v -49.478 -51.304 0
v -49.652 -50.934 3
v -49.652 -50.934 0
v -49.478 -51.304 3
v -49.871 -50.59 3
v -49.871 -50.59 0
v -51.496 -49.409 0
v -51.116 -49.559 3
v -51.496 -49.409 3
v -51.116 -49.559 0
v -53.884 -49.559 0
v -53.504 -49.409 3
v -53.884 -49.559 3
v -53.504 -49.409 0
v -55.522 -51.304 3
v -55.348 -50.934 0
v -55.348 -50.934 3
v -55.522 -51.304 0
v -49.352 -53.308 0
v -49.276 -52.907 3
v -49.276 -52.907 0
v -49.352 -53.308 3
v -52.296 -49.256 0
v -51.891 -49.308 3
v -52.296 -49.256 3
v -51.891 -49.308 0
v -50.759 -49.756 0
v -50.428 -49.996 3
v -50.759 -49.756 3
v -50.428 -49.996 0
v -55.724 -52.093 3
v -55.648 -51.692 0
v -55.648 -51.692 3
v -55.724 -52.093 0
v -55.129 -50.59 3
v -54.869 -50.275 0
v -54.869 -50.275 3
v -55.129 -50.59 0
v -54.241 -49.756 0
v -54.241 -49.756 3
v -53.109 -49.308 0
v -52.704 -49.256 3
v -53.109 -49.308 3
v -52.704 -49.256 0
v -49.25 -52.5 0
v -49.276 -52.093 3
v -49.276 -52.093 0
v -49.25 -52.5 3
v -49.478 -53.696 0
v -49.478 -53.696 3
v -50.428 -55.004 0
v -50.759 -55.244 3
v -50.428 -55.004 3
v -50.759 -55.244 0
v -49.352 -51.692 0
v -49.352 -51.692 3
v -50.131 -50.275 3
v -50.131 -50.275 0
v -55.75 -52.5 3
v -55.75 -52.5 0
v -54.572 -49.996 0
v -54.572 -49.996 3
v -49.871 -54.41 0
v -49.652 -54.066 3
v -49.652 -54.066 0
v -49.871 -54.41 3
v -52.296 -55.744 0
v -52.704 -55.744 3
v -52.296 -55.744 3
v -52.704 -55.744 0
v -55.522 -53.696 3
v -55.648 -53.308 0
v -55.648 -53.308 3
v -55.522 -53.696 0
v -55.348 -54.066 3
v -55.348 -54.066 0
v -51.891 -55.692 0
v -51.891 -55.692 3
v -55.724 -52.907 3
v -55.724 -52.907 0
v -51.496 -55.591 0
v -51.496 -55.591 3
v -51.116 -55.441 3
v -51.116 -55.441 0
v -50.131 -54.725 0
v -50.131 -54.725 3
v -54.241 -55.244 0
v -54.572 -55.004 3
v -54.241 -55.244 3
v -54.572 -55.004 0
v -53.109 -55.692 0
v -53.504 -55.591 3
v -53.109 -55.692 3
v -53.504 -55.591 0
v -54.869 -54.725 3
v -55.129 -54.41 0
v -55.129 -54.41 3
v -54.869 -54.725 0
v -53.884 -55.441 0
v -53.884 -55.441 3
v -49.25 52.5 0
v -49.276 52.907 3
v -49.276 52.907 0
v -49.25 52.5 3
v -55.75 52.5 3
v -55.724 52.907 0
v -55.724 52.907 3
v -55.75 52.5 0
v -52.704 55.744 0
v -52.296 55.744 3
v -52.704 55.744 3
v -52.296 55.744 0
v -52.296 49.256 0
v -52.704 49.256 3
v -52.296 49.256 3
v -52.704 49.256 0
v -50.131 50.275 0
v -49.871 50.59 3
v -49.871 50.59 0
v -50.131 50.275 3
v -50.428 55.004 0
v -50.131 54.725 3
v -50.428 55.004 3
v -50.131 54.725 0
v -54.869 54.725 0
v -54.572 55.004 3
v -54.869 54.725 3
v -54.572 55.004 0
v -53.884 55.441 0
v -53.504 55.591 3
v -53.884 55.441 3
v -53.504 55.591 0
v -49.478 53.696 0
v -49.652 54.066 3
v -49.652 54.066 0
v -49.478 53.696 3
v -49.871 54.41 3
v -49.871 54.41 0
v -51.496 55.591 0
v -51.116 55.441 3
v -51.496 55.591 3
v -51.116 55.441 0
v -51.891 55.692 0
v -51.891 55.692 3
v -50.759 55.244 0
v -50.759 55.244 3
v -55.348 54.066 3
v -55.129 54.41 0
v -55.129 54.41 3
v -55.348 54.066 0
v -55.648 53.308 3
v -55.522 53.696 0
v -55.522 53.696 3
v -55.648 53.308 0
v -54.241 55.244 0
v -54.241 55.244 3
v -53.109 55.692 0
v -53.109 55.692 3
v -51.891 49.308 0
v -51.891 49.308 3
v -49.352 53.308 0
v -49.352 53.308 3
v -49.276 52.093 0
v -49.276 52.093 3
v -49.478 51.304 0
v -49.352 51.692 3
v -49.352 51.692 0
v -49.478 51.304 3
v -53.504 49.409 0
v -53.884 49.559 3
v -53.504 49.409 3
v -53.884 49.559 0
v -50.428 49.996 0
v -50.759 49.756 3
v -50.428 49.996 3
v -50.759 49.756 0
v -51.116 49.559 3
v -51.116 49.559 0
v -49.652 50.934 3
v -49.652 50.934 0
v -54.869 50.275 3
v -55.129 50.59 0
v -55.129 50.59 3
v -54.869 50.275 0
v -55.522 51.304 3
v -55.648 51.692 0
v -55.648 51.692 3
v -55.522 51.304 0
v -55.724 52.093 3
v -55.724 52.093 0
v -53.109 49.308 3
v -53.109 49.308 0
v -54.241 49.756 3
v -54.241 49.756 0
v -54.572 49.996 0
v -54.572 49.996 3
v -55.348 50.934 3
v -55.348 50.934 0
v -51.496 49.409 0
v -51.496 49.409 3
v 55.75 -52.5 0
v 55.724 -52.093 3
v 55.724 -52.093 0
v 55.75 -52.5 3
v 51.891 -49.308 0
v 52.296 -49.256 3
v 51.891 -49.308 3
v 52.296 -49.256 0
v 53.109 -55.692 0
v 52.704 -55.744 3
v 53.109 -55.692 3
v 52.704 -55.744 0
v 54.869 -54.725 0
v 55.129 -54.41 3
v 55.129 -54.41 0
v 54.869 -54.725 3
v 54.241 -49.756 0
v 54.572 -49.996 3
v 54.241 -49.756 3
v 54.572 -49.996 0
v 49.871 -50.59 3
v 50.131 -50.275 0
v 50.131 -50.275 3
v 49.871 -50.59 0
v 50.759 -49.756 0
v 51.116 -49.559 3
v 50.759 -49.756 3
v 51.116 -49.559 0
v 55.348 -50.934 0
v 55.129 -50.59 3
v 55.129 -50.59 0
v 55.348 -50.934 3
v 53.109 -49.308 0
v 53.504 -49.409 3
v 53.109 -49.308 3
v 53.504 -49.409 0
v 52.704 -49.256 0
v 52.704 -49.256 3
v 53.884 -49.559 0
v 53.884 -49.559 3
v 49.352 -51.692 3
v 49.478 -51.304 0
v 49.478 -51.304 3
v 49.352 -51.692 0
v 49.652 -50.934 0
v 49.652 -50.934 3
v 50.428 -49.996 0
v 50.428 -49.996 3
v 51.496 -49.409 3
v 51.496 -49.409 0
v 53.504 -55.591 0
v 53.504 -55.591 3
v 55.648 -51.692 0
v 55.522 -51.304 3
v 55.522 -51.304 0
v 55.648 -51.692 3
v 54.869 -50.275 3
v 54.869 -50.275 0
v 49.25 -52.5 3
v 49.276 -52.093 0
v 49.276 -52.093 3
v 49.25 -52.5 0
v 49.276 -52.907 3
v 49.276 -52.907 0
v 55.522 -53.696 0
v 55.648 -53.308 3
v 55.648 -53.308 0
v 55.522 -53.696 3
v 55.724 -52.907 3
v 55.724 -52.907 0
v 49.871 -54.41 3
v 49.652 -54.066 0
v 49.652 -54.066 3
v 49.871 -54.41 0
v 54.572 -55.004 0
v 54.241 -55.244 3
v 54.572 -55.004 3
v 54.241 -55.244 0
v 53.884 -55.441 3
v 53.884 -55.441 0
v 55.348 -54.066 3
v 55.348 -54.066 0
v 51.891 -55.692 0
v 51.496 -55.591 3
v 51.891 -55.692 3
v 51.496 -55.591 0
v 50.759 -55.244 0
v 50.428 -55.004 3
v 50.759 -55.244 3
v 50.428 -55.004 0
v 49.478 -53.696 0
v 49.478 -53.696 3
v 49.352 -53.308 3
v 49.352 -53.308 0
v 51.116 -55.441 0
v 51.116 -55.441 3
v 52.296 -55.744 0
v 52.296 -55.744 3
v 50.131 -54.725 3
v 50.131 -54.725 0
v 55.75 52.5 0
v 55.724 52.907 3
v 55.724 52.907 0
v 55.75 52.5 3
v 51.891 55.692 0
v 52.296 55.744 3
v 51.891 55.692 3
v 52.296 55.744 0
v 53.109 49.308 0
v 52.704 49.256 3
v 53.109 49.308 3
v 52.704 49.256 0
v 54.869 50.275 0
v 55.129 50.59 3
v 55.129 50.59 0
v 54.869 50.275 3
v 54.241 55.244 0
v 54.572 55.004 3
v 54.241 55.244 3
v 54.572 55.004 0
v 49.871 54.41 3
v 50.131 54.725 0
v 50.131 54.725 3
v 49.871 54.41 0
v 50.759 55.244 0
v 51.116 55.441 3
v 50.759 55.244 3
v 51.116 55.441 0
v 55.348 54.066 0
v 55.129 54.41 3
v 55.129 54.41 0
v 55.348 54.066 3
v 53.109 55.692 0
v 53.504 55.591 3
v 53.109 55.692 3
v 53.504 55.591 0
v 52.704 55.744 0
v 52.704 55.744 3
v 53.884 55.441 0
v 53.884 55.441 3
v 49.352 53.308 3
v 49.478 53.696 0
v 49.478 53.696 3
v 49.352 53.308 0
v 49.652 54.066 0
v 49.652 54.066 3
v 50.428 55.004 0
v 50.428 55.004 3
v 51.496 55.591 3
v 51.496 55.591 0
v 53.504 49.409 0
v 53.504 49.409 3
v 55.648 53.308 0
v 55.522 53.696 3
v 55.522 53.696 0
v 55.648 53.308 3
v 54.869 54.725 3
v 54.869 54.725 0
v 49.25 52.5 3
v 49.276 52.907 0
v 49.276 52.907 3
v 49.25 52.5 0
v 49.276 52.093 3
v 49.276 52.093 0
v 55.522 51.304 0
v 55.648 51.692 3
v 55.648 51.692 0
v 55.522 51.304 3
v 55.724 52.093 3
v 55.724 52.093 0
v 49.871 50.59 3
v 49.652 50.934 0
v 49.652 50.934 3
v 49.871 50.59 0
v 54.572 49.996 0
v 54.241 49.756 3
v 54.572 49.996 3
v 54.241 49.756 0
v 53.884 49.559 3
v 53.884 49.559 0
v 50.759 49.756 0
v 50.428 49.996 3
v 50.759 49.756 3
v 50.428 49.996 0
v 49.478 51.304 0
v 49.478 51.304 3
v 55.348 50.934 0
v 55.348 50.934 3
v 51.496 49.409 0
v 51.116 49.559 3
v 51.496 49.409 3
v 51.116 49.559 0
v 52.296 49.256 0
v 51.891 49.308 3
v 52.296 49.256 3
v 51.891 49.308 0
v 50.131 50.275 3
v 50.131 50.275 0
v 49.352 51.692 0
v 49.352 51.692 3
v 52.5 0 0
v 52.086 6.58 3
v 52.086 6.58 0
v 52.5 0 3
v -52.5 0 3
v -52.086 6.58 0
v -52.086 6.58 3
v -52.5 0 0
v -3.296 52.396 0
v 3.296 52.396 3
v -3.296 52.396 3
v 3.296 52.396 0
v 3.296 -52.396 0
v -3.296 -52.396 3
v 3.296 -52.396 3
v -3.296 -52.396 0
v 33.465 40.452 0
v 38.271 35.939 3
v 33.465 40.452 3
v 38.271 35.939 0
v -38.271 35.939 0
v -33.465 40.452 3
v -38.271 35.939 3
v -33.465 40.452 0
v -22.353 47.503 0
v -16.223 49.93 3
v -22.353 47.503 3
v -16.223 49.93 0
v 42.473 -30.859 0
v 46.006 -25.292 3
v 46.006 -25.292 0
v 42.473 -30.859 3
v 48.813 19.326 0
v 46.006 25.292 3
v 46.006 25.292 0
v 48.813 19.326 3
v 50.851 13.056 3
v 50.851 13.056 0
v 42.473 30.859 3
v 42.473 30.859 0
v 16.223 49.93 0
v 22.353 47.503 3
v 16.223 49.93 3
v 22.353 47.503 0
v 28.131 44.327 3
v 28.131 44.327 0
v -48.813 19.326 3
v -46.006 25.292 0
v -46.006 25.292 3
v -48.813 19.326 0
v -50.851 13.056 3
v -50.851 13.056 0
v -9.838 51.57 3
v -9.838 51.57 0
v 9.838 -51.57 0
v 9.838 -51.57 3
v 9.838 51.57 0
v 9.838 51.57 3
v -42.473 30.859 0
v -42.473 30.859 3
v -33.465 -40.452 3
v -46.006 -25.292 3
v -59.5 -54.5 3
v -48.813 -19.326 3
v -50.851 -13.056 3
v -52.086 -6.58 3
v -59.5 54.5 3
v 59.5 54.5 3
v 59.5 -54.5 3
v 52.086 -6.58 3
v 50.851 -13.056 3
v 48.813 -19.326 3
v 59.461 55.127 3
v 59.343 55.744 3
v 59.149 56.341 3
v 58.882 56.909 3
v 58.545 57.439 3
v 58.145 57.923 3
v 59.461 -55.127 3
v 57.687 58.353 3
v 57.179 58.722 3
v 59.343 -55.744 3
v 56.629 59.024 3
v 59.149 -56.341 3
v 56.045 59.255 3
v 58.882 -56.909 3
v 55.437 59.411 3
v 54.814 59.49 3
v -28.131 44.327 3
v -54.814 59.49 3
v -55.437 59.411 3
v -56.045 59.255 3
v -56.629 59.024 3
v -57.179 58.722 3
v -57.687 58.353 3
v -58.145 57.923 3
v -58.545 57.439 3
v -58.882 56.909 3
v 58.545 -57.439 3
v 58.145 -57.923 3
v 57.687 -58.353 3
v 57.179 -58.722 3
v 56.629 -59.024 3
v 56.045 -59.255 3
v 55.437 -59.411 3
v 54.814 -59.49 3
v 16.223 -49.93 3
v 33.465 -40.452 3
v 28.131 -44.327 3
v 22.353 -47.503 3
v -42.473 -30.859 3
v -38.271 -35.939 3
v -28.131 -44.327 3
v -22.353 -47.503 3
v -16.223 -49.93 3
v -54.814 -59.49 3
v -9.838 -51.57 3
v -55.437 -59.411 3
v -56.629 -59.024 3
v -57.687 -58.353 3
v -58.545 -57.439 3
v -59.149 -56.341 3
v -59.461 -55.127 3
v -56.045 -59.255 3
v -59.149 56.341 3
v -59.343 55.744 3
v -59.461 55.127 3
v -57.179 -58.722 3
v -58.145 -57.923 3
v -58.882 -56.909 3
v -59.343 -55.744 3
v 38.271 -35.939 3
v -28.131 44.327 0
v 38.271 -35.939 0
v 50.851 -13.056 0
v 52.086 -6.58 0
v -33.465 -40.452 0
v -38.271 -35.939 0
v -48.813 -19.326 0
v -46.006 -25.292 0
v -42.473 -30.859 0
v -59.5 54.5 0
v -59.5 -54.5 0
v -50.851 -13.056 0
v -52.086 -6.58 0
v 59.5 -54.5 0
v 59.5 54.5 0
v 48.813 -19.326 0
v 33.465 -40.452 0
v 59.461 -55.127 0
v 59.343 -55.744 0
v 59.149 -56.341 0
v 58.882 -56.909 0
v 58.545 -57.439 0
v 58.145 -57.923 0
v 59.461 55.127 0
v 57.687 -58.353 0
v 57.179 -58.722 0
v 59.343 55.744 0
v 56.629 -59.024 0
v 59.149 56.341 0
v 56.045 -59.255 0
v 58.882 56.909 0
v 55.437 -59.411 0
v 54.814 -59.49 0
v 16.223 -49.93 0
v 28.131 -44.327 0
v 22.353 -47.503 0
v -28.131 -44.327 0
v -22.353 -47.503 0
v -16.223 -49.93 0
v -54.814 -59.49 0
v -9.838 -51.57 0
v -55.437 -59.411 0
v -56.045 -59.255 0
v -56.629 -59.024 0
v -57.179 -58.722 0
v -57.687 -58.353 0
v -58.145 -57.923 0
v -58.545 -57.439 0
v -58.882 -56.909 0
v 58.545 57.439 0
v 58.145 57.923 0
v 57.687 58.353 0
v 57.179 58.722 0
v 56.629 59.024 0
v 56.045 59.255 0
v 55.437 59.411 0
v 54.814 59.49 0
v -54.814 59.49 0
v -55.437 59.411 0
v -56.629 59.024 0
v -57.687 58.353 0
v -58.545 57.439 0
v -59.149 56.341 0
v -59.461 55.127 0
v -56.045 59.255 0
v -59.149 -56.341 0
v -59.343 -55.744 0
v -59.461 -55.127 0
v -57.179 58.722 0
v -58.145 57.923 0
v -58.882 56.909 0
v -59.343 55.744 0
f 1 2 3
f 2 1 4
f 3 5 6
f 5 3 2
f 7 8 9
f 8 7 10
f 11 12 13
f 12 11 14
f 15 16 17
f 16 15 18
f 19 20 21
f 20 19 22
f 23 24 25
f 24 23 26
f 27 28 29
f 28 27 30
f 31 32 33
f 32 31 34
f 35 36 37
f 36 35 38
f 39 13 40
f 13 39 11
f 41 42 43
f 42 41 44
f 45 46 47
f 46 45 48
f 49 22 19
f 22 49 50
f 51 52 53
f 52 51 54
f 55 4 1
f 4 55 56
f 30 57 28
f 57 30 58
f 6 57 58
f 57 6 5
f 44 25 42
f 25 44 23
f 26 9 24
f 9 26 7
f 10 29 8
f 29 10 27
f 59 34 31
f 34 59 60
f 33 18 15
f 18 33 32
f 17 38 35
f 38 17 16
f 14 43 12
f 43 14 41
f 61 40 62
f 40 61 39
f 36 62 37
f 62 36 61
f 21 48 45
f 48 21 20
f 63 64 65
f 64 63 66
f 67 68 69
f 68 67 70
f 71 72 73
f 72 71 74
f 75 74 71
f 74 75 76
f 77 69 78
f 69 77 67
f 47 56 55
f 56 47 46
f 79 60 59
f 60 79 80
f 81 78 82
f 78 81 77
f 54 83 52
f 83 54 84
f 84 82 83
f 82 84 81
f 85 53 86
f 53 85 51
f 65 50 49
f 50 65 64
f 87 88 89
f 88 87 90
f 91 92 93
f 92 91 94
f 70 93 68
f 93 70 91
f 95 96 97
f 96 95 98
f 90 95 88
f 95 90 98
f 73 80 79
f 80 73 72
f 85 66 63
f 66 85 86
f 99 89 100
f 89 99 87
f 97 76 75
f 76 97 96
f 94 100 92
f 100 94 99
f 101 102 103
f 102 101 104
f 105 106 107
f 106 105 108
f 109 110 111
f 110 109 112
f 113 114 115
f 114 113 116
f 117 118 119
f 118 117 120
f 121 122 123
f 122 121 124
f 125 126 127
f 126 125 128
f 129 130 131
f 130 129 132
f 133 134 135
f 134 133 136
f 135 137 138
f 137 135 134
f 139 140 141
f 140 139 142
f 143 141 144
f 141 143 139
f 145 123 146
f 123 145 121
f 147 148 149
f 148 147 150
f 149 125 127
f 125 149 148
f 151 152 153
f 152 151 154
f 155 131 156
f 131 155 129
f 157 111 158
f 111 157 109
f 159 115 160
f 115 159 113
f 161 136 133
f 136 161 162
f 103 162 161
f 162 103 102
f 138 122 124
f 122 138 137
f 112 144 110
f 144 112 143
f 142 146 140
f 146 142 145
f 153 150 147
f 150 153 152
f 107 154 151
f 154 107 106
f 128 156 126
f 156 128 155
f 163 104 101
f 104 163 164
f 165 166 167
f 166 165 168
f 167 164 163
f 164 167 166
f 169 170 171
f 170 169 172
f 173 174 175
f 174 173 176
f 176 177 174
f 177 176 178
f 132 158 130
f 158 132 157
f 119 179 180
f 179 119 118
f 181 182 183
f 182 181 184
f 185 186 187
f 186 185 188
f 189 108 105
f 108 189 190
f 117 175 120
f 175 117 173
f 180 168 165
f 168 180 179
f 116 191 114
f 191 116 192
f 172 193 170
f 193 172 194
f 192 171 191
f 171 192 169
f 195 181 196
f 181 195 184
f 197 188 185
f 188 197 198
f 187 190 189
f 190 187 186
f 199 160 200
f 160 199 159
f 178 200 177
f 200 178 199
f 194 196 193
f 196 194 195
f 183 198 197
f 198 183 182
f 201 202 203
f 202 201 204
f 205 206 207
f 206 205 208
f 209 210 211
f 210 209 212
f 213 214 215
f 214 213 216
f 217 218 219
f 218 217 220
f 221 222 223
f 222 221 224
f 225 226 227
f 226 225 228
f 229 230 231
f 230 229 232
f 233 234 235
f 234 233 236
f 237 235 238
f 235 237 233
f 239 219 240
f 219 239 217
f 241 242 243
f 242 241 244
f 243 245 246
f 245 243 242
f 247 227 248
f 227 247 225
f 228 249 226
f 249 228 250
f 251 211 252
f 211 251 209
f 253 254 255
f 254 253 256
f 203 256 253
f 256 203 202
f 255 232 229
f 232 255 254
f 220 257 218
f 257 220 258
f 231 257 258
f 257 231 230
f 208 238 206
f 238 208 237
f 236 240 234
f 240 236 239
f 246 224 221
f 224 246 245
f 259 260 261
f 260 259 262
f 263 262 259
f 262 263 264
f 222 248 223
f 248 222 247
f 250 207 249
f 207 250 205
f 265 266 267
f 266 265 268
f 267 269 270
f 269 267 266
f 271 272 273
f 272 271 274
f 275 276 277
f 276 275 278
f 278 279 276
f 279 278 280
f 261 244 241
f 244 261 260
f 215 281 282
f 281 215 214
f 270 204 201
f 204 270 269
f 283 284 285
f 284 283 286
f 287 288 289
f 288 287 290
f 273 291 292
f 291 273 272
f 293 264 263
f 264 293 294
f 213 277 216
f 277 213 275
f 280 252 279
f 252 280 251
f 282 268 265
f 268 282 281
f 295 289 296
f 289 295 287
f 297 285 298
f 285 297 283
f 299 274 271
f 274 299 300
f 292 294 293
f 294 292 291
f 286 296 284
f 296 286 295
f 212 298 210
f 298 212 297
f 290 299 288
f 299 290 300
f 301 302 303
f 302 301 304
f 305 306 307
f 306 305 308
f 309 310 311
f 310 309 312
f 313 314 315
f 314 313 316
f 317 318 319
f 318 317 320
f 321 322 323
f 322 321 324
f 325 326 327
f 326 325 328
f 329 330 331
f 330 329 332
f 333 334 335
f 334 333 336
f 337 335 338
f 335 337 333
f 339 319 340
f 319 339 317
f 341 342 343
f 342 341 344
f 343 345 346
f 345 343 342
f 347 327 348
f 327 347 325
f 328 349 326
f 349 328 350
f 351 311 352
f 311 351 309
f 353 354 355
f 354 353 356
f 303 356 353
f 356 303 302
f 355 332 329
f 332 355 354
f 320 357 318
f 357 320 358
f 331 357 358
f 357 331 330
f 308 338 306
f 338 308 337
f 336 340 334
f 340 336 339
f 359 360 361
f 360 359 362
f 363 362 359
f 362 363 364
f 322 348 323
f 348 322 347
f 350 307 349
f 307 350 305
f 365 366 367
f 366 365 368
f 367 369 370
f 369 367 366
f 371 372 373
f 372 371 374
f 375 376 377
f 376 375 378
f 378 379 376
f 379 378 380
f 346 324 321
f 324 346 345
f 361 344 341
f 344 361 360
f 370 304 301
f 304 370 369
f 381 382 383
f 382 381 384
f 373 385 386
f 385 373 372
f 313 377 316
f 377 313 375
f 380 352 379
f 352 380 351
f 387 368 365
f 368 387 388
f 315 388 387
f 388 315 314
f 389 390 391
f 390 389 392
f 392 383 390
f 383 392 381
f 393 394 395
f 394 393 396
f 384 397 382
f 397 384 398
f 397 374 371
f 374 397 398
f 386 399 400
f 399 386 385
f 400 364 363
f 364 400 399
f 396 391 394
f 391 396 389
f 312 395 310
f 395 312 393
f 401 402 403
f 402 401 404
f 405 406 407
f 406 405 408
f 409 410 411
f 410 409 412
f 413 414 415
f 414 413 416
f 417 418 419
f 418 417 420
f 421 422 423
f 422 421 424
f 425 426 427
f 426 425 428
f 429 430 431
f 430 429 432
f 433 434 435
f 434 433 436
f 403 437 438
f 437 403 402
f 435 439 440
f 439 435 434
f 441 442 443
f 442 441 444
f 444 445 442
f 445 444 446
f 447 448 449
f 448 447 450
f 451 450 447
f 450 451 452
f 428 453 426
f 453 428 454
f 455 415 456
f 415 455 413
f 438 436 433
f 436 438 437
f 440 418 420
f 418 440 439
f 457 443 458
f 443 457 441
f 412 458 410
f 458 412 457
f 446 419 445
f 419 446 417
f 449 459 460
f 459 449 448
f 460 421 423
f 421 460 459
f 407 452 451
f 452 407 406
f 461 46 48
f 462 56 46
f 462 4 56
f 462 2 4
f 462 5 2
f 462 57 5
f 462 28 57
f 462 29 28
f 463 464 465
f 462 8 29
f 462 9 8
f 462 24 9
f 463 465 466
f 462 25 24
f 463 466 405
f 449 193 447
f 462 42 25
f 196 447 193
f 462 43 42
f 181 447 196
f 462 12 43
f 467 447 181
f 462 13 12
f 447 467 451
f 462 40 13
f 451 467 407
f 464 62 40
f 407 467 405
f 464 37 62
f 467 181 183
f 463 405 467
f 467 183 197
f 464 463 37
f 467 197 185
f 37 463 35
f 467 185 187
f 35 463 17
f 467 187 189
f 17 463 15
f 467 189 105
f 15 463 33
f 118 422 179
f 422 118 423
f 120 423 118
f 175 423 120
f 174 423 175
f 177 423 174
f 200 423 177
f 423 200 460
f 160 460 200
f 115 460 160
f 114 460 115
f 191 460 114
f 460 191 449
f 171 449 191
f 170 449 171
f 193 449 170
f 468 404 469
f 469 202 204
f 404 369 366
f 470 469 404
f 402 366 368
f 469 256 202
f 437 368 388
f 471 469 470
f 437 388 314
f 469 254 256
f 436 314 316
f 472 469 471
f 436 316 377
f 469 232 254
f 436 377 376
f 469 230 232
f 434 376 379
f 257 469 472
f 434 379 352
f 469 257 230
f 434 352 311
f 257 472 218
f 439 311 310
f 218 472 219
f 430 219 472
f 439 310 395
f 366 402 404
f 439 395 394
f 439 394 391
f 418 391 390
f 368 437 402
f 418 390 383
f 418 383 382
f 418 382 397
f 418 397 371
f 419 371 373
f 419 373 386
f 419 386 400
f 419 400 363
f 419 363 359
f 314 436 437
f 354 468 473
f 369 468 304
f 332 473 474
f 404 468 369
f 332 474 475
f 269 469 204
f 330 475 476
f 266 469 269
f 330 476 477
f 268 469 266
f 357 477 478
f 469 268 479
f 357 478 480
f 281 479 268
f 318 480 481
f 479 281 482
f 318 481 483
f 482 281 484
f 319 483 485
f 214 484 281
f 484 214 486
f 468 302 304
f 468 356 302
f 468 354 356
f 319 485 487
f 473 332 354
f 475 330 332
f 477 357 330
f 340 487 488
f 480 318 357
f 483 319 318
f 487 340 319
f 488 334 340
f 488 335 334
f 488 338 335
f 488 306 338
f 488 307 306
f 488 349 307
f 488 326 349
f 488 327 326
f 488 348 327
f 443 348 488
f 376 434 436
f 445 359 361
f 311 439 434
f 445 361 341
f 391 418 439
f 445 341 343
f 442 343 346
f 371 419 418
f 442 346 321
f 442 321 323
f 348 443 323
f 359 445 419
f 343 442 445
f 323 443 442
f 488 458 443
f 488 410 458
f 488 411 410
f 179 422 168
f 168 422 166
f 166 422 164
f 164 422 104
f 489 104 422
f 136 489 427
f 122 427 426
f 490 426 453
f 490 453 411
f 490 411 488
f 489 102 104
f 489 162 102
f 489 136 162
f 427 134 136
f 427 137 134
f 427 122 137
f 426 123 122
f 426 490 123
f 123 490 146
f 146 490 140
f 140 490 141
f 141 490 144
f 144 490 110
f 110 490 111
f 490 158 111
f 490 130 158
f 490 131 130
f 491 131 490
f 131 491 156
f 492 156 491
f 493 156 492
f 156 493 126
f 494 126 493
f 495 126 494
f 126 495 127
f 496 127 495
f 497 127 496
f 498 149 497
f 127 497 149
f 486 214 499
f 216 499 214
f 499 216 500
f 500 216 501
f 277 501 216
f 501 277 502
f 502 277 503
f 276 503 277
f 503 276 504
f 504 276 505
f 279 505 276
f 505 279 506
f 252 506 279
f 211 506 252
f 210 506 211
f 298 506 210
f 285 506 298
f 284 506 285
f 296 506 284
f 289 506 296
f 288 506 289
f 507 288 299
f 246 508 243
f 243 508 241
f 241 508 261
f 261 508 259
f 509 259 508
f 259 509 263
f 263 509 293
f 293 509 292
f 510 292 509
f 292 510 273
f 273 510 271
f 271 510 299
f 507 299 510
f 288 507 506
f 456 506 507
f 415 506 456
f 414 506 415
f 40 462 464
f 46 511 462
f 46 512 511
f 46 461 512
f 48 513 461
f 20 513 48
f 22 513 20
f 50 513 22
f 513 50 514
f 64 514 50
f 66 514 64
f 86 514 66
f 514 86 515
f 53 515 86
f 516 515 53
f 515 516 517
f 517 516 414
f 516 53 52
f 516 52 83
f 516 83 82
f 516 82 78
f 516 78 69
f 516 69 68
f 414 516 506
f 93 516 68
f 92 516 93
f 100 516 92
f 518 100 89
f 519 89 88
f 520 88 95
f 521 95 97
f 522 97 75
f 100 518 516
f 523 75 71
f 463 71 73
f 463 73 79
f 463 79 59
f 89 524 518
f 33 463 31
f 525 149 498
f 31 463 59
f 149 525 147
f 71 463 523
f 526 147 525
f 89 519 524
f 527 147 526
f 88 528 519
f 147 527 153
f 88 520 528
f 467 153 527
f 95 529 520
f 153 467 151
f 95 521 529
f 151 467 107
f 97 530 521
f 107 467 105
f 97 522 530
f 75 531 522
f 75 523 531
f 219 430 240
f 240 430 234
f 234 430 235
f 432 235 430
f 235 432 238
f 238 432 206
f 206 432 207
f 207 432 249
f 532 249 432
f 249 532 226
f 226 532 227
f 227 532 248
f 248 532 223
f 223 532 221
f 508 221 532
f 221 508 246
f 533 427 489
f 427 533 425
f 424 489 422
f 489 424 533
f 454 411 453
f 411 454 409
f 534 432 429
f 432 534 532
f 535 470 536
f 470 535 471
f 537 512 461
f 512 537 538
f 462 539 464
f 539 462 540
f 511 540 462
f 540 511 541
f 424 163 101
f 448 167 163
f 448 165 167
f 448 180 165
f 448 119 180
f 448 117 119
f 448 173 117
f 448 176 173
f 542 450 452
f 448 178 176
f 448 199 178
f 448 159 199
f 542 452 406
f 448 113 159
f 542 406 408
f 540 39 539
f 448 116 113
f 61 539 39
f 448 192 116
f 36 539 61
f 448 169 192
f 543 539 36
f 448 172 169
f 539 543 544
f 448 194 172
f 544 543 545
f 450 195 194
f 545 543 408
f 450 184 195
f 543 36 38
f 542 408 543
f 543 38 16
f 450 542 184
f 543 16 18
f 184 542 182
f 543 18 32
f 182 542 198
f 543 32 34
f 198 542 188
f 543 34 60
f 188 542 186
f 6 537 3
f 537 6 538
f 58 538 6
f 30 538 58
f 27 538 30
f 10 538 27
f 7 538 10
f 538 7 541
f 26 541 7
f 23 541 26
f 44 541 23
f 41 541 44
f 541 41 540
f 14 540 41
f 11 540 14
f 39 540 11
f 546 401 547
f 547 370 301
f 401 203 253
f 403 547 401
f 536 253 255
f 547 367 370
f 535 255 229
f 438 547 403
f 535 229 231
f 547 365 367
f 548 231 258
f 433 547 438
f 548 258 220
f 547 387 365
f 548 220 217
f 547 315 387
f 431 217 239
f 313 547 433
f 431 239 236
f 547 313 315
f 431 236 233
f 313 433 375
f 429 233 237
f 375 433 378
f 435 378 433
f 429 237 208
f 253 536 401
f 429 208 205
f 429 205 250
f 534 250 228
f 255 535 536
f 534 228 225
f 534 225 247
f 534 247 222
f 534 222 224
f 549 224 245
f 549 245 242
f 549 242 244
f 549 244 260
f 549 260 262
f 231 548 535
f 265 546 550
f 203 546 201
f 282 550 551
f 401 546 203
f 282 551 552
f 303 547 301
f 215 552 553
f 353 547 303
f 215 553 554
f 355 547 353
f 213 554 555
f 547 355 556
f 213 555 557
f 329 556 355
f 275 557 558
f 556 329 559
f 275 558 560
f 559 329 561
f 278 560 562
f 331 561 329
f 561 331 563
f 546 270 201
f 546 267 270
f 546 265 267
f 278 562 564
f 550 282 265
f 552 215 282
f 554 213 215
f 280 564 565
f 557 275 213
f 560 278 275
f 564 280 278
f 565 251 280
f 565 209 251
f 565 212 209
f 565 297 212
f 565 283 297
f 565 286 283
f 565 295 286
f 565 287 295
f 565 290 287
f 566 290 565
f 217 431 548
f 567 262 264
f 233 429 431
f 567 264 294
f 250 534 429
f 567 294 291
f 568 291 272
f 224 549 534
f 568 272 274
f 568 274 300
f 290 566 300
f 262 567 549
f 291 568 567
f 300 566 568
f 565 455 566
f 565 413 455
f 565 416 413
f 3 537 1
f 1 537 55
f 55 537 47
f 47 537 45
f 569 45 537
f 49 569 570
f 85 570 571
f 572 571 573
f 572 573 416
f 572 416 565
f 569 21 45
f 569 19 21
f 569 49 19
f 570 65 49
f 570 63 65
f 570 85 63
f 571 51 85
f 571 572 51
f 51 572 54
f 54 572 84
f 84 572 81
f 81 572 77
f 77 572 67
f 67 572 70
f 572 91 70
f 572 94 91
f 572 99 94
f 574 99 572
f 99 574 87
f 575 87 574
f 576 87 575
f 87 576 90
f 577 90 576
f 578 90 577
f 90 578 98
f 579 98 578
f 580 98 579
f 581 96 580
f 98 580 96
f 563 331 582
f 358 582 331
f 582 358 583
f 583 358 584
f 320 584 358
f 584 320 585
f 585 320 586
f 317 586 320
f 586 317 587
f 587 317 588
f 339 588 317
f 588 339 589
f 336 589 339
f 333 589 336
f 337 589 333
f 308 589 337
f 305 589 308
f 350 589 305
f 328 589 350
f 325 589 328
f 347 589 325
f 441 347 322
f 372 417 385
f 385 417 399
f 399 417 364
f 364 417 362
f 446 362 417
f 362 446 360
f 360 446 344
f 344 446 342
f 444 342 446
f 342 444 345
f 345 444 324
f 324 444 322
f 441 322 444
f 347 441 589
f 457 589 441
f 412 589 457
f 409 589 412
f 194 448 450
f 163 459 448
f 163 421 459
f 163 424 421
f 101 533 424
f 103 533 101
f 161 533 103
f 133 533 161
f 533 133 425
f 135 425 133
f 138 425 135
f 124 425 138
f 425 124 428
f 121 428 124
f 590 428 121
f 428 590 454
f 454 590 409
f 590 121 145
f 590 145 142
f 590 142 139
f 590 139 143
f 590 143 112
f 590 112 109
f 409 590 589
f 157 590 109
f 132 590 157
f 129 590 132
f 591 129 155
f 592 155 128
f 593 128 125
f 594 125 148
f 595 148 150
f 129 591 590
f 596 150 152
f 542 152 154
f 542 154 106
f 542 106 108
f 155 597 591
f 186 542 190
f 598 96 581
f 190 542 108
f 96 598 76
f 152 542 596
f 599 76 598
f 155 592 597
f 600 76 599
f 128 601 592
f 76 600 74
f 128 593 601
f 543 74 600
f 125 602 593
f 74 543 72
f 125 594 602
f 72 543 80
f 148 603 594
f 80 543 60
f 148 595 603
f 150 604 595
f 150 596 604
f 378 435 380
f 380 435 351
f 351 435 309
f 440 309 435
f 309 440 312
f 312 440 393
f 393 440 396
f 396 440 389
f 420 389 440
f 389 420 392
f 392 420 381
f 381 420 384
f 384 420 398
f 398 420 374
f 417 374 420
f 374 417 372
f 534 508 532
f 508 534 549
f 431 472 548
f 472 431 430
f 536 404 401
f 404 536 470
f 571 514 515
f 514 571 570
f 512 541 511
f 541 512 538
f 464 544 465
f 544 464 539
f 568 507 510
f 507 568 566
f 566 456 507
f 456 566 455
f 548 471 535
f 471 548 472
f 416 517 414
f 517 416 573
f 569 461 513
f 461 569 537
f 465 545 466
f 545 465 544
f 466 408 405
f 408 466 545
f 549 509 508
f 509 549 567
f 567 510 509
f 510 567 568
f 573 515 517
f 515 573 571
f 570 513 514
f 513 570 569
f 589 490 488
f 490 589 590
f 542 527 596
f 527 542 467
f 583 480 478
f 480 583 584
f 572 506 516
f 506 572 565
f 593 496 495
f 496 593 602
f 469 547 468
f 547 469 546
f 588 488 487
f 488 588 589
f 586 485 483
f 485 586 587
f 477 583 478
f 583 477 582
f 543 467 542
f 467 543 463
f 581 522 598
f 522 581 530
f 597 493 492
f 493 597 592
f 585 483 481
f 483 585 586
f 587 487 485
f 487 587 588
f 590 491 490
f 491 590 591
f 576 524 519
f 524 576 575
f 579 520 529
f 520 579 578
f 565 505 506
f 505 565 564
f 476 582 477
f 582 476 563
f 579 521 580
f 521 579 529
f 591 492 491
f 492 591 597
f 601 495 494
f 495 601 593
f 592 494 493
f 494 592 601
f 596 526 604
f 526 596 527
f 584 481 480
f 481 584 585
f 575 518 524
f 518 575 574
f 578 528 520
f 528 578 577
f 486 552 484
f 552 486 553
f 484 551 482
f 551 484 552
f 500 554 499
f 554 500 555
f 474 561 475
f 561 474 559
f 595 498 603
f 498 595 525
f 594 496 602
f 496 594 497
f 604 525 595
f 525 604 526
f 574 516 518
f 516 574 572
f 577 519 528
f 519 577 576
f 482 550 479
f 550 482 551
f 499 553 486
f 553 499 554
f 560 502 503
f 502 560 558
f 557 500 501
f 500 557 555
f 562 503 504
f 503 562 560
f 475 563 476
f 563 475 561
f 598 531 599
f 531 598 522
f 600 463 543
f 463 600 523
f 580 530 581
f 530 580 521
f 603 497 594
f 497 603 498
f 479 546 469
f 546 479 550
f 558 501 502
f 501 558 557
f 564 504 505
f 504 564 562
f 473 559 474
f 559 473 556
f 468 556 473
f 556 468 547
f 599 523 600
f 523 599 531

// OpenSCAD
$fn = 50;


difference() {
	union() {
		hull() {
			translate(v = [-54.5000000000, 54.5000000000, 0]) {
				cylinder(h = 3, r = 5);
			}
			translate(v = [54.5000000000, 54.5000000000, 0]) {
				cylinder(h = 3, r = 5);
			}
			translate(v = [-54.5000000000, -54.5000000000, 0]) {
				cylinder(h = 3, r = 5);
			}
			translate(v = [54.5000000000, -54.5000000000, 0]) {
				cylinder(h = 3, r = 5);
			}
		}
	}
	union() {
		#translate(v = [-52.5000000000, -52.5000000000, -100.0000000000]) {
			cylinder(h = 200, r = 3.2500000000);
		}
		#translate(v = [-52.5000000000, 52.5000000000, -100.0000000000]) {
			cylinder(h = 200, r = 3.2500000000);
		}
		#translate(v = [52.5000000000, -52.5000000000, -100.0000000000]) {
			cylinder(h = 200, r = 3.2500000000);
		}
		#translate(v = [52.5000000000, 52.5000000000, -100.0000000000]) {
			cylinder(h = 200, r = 3.2500000000);
		}
		#cylinder(h = 3, r = 52.5000000000);
	}
}
